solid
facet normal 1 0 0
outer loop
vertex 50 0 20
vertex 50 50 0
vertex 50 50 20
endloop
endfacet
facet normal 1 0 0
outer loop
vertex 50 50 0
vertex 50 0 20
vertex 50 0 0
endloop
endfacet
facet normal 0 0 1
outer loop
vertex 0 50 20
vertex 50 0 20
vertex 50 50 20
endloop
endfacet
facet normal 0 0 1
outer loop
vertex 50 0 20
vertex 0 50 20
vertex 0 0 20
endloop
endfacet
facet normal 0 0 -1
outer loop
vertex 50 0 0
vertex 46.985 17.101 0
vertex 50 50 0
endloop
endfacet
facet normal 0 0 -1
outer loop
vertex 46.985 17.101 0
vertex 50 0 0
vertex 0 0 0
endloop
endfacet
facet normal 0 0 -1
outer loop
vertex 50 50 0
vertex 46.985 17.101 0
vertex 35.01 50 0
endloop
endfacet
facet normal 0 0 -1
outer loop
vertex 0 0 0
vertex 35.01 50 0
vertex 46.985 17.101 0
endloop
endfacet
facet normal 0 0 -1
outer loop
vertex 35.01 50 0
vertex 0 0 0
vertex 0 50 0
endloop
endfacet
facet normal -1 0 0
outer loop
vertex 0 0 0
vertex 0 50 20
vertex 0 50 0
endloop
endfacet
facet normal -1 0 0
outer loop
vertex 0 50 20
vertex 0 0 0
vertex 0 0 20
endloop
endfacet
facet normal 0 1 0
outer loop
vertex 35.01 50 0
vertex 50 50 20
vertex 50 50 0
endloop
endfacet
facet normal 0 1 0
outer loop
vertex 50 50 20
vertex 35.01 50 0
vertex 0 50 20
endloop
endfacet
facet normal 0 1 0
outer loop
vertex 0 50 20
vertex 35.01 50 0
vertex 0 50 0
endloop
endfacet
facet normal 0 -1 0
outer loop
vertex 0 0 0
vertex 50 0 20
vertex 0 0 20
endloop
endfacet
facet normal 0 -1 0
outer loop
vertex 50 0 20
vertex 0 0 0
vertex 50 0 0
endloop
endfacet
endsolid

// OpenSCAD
module skewed_shape(width, height, depth, angle) {
  difference() {
    cube([width, height, depth]);
    rotate([0,0,angle])
    translate([0,0,-depth/2])
    cube([width, height, depth/2]);
  }
}

skewed_shape(width = 50, height = 50, depth = 20, angle = 20);
